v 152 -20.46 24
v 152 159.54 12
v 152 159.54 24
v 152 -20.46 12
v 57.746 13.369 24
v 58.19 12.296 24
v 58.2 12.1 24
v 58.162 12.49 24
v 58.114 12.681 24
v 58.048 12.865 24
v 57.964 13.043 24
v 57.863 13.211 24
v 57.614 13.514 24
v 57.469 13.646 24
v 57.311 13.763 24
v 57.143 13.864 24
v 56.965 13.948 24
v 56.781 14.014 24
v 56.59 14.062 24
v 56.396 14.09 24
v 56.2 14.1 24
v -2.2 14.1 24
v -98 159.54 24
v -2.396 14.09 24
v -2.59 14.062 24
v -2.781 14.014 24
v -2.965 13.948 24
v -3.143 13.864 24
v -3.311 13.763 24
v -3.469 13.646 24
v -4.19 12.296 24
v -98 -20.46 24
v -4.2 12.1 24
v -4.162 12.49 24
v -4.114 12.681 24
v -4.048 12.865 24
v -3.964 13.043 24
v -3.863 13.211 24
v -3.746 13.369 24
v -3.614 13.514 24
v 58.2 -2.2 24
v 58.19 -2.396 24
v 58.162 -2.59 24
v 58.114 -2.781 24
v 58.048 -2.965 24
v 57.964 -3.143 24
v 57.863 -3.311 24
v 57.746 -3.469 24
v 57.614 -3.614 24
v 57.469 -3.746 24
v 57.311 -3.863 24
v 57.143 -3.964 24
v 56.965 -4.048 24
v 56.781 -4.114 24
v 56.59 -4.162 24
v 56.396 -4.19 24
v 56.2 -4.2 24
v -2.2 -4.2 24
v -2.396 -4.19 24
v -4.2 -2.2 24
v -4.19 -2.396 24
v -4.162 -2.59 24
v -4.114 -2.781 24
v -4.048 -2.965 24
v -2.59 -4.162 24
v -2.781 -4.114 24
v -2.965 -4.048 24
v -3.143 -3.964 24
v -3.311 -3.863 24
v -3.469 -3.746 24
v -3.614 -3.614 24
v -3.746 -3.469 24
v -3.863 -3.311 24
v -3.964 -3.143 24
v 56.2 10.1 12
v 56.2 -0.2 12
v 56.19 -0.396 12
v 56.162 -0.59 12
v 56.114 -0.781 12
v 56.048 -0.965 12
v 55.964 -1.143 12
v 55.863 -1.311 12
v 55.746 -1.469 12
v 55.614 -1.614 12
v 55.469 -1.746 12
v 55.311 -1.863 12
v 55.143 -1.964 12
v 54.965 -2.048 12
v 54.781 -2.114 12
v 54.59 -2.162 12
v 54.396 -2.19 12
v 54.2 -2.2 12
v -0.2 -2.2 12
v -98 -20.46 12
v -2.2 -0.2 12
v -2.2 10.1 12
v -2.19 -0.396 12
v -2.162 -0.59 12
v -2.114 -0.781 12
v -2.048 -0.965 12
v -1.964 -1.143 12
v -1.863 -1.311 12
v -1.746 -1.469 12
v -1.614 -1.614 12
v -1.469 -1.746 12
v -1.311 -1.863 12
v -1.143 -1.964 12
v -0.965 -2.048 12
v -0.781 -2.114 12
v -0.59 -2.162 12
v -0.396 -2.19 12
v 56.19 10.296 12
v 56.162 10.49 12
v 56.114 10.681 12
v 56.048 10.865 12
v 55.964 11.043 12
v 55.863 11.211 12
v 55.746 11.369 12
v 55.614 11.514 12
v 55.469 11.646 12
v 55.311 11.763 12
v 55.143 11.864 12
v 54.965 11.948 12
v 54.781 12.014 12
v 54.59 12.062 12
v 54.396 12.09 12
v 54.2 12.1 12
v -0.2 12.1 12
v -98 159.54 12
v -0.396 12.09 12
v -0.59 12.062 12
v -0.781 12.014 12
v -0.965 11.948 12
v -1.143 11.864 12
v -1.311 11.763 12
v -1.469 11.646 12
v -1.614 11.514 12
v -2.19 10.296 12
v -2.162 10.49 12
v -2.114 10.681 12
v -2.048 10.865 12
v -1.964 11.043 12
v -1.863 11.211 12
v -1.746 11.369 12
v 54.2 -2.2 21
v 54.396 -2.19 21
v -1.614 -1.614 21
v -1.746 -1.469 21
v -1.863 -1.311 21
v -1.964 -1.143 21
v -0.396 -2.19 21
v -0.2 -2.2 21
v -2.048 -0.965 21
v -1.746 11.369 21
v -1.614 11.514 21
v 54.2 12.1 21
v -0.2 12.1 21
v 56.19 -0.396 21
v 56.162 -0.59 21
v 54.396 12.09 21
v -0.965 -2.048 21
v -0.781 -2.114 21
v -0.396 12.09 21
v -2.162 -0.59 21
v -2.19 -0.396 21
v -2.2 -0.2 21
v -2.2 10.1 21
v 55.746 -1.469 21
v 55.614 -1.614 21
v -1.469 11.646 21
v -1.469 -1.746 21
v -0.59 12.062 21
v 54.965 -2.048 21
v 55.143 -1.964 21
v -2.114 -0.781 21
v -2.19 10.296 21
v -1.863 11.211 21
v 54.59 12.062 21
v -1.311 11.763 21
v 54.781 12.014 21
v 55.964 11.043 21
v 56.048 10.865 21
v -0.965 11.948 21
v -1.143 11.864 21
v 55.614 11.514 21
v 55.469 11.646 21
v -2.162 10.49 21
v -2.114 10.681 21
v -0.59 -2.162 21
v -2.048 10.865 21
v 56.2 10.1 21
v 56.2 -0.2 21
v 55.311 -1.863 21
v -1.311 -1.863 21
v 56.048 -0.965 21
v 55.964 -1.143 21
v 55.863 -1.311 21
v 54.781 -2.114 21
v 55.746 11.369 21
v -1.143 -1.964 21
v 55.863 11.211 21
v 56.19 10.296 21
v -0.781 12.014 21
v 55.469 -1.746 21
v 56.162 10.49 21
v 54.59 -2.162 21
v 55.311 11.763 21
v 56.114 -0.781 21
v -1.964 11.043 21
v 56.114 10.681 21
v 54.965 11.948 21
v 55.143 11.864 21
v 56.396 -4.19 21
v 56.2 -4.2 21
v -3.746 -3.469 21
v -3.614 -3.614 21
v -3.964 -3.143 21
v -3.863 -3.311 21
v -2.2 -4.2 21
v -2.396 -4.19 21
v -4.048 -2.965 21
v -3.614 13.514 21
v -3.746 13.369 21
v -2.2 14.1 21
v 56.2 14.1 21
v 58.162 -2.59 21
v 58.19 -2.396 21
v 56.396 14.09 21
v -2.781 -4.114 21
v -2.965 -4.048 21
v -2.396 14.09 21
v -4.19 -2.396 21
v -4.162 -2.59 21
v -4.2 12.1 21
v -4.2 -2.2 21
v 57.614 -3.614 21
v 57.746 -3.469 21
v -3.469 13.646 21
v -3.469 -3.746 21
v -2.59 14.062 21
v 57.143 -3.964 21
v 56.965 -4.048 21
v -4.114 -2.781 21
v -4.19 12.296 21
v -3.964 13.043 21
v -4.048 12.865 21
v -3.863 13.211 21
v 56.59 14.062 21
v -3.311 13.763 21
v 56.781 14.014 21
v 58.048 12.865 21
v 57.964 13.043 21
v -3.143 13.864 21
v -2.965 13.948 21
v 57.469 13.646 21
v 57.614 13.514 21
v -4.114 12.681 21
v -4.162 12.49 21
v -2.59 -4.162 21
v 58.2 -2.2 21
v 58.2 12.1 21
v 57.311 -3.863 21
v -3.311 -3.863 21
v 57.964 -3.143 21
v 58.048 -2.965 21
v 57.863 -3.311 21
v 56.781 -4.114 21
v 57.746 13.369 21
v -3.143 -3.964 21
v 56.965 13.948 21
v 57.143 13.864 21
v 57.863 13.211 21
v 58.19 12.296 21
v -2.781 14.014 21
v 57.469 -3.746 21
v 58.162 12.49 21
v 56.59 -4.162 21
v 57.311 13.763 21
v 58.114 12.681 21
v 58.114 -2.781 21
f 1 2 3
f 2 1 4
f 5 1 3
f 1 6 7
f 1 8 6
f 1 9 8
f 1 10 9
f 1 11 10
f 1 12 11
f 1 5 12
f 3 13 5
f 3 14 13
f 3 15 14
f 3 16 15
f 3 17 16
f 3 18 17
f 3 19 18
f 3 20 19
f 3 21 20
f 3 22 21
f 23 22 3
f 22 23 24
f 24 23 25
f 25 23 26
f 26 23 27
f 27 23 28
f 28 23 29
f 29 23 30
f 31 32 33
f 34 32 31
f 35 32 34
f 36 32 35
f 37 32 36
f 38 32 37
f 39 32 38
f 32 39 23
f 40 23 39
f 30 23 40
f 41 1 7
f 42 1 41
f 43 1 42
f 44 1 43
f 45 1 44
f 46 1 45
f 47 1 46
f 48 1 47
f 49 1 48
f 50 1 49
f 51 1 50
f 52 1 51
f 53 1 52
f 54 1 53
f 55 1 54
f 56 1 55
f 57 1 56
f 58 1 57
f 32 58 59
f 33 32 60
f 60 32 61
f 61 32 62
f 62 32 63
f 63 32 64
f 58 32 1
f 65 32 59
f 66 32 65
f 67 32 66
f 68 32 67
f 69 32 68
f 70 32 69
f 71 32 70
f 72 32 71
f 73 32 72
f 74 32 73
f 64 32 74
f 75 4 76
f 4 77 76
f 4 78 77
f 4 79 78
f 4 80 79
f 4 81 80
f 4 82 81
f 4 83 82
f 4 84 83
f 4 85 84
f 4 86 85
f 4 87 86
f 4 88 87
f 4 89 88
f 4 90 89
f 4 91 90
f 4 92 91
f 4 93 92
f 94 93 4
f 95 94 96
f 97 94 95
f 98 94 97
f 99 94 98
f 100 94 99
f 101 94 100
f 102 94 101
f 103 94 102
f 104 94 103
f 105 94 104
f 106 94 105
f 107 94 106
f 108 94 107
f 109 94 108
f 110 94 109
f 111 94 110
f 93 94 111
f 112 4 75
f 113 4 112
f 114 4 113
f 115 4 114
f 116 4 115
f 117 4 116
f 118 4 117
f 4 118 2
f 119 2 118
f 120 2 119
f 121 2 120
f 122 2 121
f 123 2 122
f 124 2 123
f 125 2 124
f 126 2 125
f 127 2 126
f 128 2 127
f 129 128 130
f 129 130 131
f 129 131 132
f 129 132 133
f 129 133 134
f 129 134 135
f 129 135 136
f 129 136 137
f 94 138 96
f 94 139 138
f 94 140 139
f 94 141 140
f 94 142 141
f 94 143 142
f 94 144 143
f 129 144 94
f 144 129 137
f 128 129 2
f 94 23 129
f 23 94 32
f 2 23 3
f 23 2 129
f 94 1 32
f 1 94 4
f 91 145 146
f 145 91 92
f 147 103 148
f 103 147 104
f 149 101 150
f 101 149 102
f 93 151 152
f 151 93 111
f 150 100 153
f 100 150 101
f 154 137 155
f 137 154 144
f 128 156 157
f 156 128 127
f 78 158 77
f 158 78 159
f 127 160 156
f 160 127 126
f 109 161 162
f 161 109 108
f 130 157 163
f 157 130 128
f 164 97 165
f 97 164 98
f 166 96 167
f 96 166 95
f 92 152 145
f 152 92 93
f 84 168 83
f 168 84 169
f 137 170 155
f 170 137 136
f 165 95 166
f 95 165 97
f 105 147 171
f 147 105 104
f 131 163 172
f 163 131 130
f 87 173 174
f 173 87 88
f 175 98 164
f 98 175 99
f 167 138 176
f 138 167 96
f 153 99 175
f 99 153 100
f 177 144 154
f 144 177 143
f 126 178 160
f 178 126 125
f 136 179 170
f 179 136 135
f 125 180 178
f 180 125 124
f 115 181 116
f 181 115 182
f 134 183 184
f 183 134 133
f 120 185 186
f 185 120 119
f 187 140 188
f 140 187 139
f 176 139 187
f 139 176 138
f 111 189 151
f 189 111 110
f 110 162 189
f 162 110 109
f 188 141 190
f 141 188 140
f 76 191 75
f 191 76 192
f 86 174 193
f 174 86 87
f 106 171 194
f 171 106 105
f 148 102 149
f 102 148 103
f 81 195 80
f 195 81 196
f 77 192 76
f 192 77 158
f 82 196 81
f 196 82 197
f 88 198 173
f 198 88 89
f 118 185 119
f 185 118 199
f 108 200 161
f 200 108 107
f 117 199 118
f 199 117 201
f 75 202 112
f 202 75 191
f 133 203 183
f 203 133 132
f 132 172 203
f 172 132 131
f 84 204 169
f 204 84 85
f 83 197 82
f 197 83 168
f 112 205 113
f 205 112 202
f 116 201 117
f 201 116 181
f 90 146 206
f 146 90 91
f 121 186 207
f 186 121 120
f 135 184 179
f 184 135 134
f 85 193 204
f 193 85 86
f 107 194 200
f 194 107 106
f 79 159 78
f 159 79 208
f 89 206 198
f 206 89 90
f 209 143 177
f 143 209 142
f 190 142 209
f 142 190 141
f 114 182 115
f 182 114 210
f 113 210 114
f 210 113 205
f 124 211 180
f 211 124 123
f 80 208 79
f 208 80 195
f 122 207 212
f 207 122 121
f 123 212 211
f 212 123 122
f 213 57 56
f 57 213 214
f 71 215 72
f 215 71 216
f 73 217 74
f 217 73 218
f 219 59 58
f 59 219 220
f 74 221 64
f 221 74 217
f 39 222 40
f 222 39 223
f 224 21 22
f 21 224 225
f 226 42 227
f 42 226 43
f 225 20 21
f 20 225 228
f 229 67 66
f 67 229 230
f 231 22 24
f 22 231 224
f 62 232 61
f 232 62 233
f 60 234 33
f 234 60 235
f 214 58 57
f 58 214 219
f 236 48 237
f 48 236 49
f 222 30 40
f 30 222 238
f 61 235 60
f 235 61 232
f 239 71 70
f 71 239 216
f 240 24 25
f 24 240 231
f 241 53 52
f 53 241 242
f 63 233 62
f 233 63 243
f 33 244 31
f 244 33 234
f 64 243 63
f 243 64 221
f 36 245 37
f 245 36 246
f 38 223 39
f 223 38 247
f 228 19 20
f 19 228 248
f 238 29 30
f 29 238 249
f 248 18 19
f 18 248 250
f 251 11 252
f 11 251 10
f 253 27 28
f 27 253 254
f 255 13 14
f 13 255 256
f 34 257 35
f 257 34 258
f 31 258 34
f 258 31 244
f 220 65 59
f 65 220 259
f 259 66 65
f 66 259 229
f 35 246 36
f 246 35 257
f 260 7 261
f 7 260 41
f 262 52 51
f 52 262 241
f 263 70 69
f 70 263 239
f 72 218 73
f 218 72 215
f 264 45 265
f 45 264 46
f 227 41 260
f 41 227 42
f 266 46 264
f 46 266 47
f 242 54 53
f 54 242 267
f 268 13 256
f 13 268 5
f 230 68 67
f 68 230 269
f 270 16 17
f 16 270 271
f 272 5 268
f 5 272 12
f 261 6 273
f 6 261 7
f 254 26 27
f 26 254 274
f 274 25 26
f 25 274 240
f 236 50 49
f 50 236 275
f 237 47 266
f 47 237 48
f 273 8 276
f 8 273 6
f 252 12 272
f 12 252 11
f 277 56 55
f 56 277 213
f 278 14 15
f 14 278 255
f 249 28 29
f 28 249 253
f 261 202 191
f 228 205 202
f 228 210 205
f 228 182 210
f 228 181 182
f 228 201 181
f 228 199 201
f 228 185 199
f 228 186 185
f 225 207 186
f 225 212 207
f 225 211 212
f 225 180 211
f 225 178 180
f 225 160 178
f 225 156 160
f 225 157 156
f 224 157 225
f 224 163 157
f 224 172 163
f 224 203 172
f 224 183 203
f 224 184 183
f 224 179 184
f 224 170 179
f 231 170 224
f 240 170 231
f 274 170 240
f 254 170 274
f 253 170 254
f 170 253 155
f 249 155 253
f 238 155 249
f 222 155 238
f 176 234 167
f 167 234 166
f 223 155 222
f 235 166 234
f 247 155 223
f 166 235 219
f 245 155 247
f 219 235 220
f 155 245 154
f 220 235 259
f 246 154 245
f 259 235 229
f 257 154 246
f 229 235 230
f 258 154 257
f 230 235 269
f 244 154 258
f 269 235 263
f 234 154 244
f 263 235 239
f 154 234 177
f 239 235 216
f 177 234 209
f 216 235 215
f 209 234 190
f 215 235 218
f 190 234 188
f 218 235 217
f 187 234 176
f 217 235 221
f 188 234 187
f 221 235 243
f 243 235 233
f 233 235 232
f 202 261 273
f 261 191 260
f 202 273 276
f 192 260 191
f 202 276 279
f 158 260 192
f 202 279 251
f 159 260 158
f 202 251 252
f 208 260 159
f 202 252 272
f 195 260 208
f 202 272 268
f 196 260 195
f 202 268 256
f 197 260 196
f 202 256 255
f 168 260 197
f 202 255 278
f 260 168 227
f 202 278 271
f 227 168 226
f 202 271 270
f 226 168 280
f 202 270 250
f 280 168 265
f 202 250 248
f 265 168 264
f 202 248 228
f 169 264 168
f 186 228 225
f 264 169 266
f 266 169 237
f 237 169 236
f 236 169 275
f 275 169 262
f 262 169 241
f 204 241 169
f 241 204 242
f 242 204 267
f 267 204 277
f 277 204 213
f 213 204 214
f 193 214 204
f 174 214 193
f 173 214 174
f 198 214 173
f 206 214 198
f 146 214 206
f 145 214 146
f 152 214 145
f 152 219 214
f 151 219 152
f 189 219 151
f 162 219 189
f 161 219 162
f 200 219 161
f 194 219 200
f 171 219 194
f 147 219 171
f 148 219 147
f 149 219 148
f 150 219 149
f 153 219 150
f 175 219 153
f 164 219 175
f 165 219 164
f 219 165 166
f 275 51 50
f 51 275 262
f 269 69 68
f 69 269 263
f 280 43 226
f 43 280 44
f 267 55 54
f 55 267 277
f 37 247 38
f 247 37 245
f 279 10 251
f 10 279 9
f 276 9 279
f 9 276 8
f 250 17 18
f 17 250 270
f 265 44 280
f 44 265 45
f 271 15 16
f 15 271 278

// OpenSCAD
// file: geometry.scad
// Local LED view: cable outlet now +x; hole row +y; +z OUT.
// Cable side is user mechanical correction; electrical pad order unverified.
// Photo PXL_20261021_175716386: +y points LEFT toward deck interior.
// User measurements 21.10.2026; exact LED/SMD XY remain illustrative envelopes.
pcb_w=54;
pcb_d=9.9;
pcb_t=1.6;
led_h=1.63;          // measured PCB+LED 3.23 minus PCB 1.6
// Reference-derived XY, NOT measurements of component positions on this board.
led_xy=[for(i=[0:7]) [(3.175+i*6.35)*54/50.8,3.81]];
cap_xy=[for(p=[[2.413,8.382],[8.382,8.382],[16.891,8.382],[22.225,8.382],[28.575,8.382],[33.655,8.382],[42.037,8.382],[48.26,8.382]]) [p[0]*54/50.8,p[1]-0.26]];
board_hole_d=3;
// Clear gap 23 + diameter 3 = pitch 26; right margin to hole edge 12.8.
// Near long-edge clearance 0.7 + radius 1.5 = center 2.2 from rear edge.
board_holes=[[13.7,7.7],[39.7,7.7]];
wood_z=12;           // contact plane; printed part starts at z=0
wood_h=12;
glass_h=3;           // proposed opal PMMA, verify actual thickness
optical_gap=3;       // proposed LED/glass gap, no optical test
board_z=wood_z+wood_h-glass_h-optical_gap-led_h-pcb_t; //14.77
opening=[-2.2,-2.2,58.4,14.3]; // 2.2 mm per measured PCB edge
rebate=[-4.2,-4.2,62.4,18.3]; // 2 mm glass-bearing lip
corner_r=2;
fit=0.20;           // per side, needs real print/wood calibration
lead_in=0.4;
lead_h=0.6;
guide_h=4.5;
guide_wall=1.5;
guide_clip=2.4; // corner guides leave assumed short-end cable route clear; check actual solder
// User correction: BOTH tabs toward photo LEFT, i.e. hole-row side +y.
wood_points=[[20,19.9],[34,19.9]];
tab_h=3.5;
wood_d=3.2;
head_d=6.2;
wood_screw_l=12;
base_h=2;
post_d=8;
post_top=7;
neck_d=3.8;
m2_clear=2.3;
nut_af=4.2;          // assumed M2 nut AF4 + 0.2 calibration allowance
nut_pocket_h=3;      // deeper rear entry seats nut nearer PCB for thread reserve
nut_h=1.6;
m2_length=16;        // head to tip, not a countersunk screw
head_h=2;            // maximum allowed head height; verify actual selected screw
pcb_head_d=3;        // tested envelope ONLY; clashes with assumed component XY, NOT approved
panel_rect=[-98,-20.46,250,180]; // reference placement only, user owns deck layout
rear_wall_y=-8.46;  // reference wall INSIDE plane, now opposite tabs (-y)
// Same nominal 4.26 mm lip-to-wall clearance, NOT a measured photo distance.
rear_wall_t=12;
assert(abs(board_z-14.77)<0.001);
assert(guide_h<wood_h-glass_h);
assert((post_d-nut_af/cos(30))/2>1.5);
assert(tab_h-(head_d-wood_d)/2>=2);
assert(wood_h-(wood_screw_l-tab_h)>=3);
assert(rebate[1]-rear_wall_y>=4-0.001);
module profile(r,rad=3,inset=0){
    translate([r[0]+rad,r[1]+rad]) offset(r=rad-inset) square([r[2]-2*rad,r[3]-2*rad]);
}
module opening_profile(inset=0){profile(opening,corner_r,inset);}
module rebate_profile(inset=0){profile(rebate,corner_r,inset);}
// main file
include <geometry.scad>
$fn=64;
part="panel";
module panel(){
    difference(){
        translate([panel_rect[0],panel_rect[1],wood_z]) cube([panel_rect[2],panel_rect[3],wood_h]);
        translate([0,0,wood_z-0.02]) linear_extrude(wood_h+0.04) opening_profile();
        translate([0,0,wood_z+wood_h-glass_h]) linear_extrude(glass_h+0.02) rebate_profile();
    }
}
module glass(){translate([0,0,wood_z+wood_h-glass_h]) linear_extrude(glass_h) rebate_profile(0.2);}
module rear_wall(){translate([panel_rect[0],rear_wall_y-rear_wall_t,-35]) cube([panel_rect[2],rear_wall_t,wood_z+35]);}
module local_panel(){intersection(){panel();translate([-24,-32,wood_z])cube([98,69.16,wood_h]);}}
if(part=="panel") panel();
if(part=="local") local_panel();
if(part=="opening") opening_profile();
if(part=="rebate") rebate_profile();
if(part=="glass") rebate_profile(0.2);
